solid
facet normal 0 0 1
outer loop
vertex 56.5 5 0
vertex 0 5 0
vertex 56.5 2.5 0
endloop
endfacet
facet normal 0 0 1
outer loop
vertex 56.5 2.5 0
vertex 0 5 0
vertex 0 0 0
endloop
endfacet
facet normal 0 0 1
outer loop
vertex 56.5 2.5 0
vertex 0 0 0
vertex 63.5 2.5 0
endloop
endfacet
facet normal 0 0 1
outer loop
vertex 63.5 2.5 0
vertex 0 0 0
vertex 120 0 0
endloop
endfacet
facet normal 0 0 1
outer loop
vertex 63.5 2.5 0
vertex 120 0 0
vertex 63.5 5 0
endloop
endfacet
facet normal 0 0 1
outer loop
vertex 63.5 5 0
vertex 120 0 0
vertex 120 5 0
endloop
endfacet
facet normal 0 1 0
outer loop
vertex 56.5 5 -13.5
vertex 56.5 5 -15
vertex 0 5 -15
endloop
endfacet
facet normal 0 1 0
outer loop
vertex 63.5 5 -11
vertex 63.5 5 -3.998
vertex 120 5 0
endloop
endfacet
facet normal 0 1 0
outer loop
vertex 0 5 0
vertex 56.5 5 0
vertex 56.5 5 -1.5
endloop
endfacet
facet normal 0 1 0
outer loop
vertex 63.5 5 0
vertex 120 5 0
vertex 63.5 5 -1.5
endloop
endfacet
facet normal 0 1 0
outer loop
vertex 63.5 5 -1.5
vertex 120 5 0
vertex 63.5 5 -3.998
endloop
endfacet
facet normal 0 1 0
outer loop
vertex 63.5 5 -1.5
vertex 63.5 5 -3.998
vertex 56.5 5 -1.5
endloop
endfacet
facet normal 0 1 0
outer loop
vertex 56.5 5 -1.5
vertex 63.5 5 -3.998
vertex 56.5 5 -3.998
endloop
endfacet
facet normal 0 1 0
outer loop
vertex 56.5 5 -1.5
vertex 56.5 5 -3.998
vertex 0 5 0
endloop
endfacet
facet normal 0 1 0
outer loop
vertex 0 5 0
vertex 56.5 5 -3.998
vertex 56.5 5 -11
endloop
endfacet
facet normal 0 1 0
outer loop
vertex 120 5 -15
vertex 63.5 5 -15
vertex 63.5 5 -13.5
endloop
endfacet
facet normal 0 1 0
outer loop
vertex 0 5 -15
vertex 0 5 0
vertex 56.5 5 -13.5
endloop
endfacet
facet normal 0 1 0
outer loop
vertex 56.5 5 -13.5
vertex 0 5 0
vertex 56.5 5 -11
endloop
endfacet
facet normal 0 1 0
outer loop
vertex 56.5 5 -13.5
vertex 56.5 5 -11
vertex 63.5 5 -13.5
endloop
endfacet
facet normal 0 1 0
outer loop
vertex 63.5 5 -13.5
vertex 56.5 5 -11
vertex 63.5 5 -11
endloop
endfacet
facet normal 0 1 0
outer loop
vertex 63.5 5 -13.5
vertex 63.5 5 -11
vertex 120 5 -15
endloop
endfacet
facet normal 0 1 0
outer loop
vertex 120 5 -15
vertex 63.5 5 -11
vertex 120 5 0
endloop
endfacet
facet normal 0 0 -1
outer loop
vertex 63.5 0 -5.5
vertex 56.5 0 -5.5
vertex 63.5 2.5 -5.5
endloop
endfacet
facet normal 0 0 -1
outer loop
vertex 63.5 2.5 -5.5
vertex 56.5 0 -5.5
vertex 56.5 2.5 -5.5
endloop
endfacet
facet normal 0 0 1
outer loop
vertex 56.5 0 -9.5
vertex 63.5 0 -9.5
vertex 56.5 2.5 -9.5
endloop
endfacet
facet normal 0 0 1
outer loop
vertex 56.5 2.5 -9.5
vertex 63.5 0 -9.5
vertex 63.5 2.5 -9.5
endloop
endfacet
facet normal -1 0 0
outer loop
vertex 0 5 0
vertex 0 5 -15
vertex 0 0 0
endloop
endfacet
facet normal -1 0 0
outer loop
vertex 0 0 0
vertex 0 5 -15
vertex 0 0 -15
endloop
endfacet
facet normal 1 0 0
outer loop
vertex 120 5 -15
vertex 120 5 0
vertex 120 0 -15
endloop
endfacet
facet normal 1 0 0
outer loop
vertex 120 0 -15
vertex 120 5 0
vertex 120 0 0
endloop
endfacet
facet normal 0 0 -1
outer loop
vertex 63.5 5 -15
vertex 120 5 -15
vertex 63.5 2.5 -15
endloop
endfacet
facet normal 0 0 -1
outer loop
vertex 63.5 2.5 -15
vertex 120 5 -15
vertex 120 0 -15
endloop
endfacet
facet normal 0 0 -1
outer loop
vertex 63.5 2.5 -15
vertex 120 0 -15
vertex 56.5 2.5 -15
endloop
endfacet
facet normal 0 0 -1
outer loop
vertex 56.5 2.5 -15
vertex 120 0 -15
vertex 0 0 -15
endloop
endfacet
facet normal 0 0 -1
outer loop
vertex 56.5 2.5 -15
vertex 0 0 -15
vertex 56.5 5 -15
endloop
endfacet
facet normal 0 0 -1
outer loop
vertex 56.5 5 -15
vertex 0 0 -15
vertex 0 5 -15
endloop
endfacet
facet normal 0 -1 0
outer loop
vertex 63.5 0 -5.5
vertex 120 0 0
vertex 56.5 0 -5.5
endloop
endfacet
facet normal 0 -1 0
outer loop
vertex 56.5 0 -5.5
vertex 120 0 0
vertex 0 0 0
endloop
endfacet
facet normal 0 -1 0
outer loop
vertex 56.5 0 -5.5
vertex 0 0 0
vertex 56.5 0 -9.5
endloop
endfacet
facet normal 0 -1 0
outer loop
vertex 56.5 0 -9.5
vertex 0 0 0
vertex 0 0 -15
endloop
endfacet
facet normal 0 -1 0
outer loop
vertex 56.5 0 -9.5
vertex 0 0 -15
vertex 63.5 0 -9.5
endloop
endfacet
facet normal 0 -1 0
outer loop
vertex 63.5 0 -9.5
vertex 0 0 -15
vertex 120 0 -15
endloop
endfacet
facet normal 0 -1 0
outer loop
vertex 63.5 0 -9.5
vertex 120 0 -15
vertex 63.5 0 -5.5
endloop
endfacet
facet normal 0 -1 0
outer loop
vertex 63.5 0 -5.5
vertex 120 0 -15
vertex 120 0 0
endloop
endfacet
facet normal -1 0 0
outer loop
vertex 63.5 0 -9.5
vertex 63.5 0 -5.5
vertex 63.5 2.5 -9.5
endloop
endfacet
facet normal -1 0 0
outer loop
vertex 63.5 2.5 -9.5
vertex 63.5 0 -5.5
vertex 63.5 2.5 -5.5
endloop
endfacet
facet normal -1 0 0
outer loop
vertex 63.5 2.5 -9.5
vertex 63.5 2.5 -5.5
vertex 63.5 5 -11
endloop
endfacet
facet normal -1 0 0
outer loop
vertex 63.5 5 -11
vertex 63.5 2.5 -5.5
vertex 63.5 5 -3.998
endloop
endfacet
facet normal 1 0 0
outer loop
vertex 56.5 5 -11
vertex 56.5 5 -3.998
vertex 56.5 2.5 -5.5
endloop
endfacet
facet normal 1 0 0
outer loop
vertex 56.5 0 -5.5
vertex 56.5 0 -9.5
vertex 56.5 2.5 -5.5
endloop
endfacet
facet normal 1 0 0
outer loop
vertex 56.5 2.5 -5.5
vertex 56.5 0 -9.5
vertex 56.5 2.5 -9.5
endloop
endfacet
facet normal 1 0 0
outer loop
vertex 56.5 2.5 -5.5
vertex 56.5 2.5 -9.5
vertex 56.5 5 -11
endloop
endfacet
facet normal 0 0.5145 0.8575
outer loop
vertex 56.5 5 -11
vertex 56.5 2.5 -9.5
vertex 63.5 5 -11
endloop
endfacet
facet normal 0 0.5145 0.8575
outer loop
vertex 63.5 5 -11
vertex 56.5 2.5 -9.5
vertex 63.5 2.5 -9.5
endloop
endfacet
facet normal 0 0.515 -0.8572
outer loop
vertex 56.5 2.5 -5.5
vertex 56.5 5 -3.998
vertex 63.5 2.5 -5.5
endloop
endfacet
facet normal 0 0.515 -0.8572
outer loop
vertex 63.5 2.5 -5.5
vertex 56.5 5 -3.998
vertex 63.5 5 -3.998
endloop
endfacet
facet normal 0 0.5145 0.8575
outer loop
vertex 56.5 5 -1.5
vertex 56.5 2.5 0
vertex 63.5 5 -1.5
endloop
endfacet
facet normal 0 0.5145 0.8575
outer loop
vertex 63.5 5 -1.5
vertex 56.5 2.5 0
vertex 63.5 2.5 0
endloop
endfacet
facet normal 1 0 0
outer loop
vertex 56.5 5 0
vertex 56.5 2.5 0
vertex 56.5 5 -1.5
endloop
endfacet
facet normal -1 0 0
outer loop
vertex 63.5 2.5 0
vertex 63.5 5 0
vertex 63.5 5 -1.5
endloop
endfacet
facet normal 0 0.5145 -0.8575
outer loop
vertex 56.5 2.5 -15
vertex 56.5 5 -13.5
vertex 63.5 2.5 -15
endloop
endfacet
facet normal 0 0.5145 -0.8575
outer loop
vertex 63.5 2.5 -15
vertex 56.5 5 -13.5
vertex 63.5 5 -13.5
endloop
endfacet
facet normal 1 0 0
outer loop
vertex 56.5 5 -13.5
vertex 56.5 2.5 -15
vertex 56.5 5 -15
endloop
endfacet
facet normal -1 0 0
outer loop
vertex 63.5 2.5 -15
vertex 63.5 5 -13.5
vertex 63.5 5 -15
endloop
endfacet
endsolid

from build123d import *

# Parameters (mm, degrees)
SKETCH1_W           = 120
SKETCH1_H           = 15
BOSS_EXTRUDE1_DEPTH = 5
SKETCH2_W           = 7
SKETCH2_H           = 4
CUT_EXTRUDE1_DEPTH  = 10
CUT_EXTRUDE2_DEPTH  = 7


with BuildPart() as part:
    # Sketch1 → Boss-Extrude1 (new body)
    with BuildSketch(Plane(origin=(0, 0, 0), x_dir=(1, 0, 0), z_dir=(0, 1, 0))):
        with Locations((60, 7.5)):
            Rectangle(SKETCH1_W, SKETCH1_H)
    extrude(amount=BOSS_EXTRUDE1_DEPTH)

    # Sketch2 → Cut-Extrude1 (cut)
    with BuildSketch(Plane(origin=(0, 5, 0), x_dir=(1, 0, 0), z_dir=(0, 1, 0))):
        with Locations((60, 7.5)):
            Rectangle(SKETCH2_W, SKETCH2_H)
    extrude(amount=-CUT_EXTRUDE1_DEPTH, mode=Mode.SUBTRACT)

    # Sketch3 → Cut-Extrude2 (cut)
    with BuildSketch(Plane(origin=(56.5, 0, 0), x_dir=(0, 0, -1), z_dir=(1, 0, 0))):
        Polygon((5.5, 5), (3.997858335, 5), (5.5, 2.5), align=None)
        Polygon((9.5, 5), (11, 5), (9.5, 2.5), align=None)
        Polygon((1.5, 5), (0, 2.5), (0, 5), align=None)
        Polygon((13.5, 5), (15, 2.5), (15, 5), align=None)
    extrude(amount=CUT_EXTRUDE2_DEPTH, mode=Mode.SUBTRACT)


solid = part.part
